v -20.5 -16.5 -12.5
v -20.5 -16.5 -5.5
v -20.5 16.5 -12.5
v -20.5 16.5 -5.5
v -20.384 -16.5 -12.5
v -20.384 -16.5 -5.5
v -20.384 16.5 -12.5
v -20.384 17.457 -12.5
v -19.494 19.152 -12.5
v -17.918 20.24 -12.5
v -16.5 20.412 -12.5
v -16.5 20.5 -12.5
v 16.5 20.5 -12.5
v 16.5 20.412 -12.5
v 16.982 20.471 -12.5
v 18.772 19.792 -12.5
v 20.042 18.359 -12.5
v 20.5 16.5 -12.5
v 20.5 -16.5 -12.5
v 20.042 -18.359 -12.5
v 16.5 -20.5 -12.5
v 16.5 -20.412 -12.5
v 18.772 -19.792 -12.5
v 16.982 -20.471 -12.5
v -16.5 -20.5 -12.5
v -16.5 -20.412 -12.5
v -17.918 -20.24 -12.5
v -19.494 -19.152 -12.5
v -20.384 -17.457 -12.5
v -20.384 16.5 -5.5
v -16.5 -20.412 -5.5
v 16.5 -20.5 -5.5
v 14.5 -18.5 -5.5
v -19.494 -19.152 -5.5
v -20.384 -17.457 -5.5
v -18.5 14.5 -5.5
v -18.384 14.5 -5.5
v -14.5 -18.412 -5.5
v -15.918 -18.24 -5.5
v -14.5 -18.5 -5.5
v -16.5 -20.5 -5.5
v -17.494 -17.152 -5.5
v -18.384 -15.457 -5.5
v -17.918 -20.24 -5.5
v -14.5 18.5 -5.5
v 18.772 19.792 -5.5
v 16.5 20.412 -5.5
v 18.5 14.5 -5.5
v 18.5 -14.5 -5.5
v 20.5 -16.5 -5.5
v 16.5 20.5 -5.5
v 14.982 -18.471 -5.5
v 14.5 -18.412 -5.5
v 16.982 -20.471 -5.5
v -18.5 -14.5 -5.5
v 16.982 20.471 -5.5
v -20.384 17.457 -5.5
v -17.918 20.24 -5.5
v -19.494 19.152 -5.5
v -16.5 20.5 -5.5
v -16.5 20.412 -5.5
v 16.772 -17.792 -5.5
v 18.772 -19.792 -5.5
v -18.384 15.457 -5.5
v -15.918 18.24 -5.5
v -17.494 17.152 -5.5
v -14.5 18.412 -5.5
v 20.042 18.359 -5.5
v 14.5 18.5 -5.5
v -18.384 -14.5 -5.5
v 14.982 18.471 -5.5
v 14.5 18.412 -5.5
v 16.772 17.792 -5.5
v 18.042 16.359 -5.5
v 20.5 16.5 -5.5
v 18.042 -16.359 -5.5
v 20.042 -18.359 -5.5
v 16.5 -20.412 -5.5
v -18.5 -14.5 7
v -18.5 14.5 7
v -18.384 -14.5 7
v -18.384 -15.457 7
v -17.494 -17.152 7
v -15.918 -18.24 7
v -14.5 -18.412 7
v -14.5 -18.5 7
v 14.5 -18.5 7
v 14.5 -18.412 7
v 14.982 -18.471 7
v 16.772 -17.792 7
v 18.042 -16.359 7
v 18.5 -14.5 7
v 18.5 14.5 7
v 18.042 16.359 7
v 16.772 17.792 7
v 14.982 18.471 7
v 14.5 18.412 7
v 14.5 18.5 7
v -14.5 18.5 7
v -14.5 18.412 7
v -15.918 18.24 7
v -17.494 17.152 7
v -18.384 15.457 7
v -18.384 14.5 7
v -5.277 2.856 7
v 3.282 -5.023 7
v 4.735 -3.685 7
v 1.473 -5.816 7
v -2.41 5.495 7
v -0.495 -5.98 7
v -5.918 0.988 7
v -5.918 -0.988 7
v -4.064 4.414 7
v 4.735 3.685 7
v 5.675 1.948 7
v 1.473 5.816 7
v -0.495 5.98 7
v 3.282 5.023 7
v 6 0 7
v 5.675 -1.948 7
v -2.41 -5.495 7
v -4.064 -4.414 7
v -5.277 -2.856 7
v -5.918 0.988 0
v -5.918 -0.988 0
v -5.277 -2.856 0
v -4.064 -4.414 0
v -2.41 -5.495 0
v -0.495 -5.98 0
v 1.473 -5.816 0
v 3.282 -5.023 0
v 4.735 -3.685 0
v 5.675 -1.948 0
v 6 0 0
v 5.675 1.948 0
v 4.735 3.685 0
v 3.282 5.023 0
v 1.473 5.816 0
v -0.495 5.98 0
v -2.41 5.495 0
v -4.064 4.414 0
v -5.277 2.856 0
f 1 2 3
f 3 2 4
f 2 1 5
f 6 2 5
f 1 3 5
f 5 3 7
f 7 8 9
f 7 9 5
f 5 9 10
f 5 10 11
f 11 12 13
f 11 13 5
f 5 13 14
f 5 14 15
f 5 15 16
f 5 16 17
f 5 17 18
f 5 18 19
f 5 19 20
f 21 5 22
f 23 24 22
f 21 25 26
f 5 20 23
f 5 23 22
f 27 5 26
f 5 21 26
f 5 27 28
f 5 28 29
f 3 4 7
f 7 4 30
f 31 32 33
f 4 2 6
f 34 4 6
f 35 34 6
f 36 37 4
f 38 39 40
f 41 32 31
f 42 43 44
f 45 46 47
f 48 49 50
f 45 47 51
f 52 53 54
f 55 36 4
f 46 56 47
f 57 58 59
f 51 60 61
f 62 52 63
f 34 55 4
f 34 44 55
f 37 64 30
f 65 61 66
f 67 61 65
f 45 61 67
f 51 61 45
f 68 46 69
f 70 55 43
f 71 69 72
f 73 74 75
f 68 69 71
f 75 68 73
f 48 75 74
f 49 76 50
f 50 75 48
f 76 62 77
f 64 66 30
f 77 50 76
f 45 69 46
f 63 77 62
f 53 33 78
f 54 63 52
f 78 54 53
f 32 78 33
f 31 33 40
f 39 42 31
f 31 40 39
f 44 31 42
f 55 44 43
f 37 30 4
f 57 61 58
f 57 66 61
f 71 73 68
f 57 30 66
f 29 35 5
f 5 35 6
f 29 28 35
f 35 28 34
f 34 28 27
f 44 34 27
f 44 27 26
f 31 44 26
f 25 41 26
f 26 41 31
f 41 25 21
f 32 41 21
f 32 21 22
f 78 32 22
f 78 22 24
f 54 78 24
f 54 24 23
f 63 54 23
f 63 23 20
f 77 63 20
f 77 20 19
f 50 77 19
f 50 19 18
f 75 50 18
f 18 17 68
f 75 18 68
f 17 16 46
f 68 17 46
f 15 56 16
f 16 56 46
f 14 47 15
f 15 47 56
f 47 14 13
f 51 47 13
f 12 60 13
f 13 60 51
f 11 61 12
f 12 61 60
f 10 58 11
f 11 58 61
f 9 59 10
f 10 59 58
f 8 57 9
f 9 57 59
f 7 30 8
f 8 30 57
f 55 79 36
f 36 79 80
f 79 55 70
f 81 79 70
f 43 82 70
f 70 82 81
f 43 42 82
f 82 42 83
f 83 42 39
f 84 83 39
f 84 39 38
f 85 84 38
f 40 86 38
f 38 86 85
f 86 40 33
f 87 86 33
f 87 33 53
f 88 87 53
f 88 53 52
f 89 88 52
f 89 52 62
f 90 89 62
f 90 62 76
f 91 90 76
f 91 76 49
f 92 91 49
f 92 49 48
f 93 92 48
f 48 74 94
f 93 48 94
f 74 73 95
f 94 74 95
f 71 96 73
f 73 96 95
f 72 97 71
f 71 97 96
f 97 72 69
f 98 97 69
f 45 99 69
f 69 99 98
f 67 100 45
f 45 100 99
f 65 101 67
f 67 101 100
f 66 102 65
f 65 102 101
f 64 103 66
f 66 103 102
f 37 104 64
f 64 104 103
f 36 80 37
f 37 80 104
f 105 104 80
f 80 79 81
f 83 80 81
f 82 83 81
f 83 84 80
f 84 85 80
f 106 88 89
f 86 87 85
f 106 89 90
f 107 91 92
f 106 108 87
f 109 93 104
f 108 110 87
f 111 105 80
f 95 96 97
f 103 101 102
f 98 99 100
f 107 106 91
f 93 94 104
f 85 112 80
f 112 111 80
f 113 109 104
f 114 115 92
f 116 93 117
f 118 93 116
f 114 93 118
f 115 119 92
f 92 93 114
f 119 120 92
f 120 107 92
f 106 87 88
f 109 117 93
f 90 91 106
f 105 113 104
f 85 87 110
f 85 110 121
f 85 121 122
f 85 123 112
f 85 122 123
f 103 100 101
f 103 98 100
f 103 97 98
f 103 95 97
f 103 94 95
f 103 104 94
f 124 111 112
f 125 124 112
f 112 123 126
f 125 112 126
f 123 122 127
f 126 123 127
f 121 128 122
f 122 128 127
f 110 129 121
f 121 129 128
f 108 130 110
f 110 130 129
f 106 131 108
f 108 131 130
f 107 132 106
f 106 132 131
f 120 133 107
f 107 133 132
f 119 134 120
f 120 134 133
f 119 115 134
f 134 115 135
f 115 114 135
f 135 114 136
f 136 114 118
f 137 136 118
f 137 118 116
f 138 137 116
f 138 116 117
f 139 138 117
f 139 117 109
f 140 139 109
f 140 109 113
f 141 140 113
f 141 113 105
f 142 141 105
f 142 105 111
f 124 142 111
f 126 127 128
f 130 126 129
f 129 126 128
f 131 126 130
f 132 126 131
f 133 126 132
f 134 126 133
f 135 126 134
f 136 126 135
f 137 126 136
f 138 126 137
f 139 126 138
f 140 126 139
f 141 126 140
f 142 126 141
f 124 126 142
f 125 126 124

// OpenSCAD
use <MCAD/boxes.scad>



module burato_tornillo( diametro_tornillo, diametro_arandela ) {

	cylinder(h=1000, r1=diametro_tornillo/2, r2=diametro_tornillo/2, center=true);
	cylinder(h=11, r1=diametro_arandela/2, r2=diametro_arandela/2, center=true);
	//cube([diametro_tuerca,diametro_tuerca,7], center = true);
}

difference() {
	union() {
		roundedBox([37, 37, 14], 4, true);  
		translate([0,0,-9]) roundedBox([41, 41, 7], 4, true);  
	}

	translate([0,0,0]) cylinder(h=100, r1=12/2 , r2=12/2);

}
